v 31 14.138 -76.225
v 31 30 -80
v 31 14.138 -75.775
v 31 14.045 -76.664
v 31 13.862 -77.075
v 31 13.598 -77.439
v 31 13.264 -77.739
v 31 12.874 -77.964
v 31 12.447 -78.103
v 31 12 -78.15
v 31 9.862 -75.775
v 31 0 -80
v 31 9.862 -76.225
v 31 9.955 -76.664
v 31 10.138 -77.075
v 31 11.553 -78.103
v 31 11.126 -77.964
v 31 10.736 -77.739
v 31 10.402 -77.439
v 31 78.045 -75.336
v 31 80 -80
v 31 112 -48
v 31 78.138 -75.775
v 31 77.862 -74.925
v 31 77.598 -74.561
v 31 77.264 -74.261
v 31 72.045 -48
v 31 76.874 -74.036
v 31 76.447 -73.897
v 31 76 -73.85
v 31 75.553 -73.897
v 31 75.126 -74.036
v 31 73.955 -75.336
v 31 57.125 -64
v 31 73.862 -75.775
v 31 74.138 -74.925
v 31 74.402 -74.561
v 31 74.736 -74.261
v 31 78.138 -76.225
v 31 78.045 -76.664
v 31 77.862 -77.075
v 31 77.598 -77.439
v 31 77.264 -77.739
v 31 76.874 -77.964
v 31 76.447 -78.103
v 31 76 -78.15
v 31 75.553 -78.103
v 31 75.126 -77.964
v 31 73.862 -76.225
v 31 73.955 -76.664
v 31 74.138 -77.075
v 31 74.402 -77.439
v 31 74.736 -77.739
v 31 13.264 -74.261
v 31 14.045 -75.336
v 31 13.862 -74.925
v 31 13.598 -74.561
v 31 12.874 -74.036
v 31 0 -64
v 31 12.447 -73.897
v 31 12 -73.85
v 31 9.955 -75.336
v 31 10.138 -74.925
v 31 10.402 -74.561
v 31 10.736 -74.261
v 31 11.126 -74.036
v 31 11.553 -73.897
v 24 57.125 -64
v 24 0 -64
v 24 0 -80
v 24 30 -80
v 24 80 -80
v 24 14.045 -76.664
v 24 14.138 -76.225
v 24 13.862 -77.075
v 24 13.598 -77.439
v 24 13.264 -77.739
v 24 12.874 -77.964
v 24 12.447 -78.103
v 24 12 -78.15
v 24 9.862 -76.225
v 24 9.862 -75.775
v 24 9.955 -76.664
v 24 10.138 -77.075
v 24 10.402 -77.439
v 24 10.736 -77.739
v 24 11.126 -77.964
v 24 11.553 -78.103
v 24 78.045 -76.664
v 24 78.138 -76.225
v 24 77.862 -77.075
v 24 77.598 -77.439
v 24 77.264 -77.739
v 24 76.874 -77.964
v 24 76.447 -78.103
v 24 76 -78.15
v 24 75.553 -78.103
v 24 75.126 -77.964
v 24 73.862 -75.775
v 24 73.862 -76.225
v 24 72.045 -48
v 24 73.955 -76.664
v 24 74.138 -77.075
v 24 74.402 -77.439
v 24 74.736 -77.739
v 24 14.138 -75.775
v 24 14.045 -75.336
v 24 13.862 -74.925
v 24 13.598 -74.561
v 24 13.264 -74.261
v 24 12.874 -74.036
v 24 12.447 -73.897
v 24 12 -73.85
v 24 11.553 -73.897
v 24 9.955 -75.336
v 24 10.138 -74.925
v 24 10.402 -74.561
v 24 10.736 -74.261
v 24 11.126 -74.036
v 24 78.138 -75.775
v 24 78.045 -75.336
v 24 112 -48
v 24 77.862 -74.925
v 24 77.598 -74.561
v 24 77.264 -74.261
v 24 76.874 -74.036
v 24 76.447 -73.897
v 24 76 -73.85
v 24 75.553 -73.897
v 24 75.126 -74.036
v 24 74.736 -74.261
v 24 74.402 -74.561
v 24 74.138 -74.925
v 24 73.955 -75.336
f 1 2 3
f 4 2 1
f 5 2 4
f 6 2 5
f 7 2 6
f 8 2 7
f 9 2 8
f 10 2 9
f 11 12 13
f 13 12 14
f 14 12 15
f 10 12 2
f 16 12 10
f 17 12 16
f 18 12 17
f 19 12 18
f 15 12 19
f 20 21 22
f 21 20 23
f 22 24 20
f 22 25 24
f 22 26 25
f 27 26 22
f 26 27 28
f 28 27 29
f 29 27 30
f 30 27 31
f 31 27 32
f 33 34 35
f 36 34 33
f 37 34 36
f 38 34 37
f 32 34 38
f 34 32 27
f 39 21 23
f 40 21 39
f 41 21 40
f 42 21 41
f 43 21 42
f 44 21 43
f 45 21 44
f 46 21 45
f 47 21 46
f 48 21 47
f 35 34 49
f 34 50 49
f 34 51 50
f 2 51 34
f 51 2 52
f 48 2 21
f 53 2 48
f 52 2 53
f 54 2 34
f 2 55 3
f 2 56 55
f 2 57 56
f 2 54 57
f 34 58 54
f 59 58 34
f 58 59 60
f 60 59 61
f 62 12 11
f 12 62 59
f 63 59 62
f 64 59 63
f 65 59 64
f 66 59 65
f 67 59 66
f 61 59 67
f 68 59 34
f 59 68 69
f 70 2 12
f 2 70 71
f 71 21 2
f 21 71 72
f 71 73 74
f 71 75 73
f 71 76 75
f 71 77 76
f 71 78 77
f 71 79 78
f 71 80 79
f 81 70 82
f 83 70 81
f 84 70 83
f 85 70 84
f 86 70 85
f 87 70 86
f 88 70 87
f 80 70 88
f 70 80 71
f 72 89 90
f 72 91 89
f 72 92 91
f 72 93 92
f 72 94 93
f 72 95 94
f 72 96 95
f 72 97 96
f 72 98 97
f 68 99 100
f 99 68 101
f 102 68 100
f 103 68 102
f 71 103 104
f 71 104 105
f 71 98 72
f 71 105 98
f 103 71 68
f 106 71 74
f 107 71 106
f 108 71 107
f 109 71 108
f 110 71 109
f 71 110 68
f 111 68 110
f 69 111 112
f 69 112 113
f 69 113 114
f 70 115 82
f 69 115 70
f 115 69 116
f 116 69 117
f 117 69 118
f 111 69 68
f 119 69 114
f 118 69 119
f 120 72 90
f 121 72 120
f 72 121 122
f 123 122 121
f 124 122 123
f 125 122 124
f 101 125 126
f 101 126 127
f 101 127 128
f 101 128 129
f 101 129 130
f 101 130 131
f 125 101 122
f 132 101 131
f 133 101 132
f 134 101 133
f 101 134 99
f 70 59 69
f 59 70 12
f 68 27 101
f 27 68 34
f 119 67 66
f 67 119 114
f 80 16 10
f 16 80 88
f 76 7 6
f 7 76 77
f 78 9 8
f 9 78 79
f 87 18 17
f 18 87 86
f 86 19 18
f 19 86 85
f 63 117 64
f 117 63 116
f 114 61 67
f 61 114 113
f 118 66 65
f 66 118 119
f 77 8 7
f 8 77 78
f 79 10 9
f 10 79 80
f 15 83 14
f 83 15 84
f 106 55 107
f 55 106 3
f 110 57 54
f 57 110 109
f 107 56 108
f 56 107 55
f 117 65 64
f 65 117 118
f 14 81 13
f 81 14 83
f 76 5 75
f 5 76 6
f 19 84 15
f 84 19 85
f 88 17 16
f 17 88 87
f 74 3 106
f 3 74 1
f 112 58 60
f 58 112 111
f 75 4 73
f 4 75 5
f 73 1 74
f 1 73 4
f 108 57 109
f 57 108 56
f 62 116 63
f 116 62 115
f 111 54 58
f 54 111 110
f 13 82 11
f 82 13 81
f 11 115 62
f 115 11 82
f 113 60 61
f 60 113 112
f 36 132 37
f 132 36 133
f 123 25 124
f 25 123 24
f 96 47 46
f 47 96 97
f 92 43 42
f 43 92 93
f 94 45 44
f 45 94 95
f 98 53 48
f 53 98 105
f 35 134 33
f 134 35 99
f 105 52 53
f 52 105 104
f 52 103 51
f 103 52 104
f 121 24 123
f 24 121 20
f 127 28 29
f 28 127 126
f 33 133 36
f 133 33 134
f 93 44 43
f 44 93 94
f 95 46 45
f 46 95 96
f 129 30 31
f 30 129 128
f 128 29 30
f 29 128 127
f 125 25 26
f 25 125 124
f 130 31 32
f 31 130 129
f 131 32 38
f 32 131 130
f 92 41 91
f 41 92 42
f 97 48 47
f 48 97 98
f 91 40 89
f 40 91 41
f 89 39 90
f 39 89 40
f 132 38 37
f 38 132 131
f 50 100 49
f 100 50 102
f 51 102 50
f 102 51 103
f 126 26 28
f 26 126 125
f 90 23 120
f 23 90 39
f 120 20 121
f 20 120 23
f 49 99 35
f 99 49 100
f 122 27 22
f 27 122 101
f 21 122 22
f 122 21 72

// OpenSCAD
// bottom part of guard rail for top middle entry
color ("tan")
difference() {
union() {
    translate([24,0,-80])
    cube([7,80,16]);
    
    // part at angle connecting left exit and top
    translate([24,47.8,-74])
    rotate([-43,0,0])
    cube([7,17,70]);
    
    translate([24,70,-74])
    rotate([-43,0,0])
    cube([7,16,50]);
}
    // left bottom hole
    translate([-4,12,-76])
    rotate([0,90,0])
    cylinder(r=2.15,60, $fn=30);

    // right bottom hole
    translate([-4,76,-76])
    rotate([0,90,0])
    cylinder(r=2.15,60, $fn=30);

    // top clean up
    translate([0,60,-48])
    cube([40,60,40]);
    
    // bottom clean up
    translate([0,30,-92])
    cube([40,60,12]);
   
    // bottom right corner clean up
    translate([0,80,-80])
    rotate([-45,0,0])
    cube([50,16,70]);
}
